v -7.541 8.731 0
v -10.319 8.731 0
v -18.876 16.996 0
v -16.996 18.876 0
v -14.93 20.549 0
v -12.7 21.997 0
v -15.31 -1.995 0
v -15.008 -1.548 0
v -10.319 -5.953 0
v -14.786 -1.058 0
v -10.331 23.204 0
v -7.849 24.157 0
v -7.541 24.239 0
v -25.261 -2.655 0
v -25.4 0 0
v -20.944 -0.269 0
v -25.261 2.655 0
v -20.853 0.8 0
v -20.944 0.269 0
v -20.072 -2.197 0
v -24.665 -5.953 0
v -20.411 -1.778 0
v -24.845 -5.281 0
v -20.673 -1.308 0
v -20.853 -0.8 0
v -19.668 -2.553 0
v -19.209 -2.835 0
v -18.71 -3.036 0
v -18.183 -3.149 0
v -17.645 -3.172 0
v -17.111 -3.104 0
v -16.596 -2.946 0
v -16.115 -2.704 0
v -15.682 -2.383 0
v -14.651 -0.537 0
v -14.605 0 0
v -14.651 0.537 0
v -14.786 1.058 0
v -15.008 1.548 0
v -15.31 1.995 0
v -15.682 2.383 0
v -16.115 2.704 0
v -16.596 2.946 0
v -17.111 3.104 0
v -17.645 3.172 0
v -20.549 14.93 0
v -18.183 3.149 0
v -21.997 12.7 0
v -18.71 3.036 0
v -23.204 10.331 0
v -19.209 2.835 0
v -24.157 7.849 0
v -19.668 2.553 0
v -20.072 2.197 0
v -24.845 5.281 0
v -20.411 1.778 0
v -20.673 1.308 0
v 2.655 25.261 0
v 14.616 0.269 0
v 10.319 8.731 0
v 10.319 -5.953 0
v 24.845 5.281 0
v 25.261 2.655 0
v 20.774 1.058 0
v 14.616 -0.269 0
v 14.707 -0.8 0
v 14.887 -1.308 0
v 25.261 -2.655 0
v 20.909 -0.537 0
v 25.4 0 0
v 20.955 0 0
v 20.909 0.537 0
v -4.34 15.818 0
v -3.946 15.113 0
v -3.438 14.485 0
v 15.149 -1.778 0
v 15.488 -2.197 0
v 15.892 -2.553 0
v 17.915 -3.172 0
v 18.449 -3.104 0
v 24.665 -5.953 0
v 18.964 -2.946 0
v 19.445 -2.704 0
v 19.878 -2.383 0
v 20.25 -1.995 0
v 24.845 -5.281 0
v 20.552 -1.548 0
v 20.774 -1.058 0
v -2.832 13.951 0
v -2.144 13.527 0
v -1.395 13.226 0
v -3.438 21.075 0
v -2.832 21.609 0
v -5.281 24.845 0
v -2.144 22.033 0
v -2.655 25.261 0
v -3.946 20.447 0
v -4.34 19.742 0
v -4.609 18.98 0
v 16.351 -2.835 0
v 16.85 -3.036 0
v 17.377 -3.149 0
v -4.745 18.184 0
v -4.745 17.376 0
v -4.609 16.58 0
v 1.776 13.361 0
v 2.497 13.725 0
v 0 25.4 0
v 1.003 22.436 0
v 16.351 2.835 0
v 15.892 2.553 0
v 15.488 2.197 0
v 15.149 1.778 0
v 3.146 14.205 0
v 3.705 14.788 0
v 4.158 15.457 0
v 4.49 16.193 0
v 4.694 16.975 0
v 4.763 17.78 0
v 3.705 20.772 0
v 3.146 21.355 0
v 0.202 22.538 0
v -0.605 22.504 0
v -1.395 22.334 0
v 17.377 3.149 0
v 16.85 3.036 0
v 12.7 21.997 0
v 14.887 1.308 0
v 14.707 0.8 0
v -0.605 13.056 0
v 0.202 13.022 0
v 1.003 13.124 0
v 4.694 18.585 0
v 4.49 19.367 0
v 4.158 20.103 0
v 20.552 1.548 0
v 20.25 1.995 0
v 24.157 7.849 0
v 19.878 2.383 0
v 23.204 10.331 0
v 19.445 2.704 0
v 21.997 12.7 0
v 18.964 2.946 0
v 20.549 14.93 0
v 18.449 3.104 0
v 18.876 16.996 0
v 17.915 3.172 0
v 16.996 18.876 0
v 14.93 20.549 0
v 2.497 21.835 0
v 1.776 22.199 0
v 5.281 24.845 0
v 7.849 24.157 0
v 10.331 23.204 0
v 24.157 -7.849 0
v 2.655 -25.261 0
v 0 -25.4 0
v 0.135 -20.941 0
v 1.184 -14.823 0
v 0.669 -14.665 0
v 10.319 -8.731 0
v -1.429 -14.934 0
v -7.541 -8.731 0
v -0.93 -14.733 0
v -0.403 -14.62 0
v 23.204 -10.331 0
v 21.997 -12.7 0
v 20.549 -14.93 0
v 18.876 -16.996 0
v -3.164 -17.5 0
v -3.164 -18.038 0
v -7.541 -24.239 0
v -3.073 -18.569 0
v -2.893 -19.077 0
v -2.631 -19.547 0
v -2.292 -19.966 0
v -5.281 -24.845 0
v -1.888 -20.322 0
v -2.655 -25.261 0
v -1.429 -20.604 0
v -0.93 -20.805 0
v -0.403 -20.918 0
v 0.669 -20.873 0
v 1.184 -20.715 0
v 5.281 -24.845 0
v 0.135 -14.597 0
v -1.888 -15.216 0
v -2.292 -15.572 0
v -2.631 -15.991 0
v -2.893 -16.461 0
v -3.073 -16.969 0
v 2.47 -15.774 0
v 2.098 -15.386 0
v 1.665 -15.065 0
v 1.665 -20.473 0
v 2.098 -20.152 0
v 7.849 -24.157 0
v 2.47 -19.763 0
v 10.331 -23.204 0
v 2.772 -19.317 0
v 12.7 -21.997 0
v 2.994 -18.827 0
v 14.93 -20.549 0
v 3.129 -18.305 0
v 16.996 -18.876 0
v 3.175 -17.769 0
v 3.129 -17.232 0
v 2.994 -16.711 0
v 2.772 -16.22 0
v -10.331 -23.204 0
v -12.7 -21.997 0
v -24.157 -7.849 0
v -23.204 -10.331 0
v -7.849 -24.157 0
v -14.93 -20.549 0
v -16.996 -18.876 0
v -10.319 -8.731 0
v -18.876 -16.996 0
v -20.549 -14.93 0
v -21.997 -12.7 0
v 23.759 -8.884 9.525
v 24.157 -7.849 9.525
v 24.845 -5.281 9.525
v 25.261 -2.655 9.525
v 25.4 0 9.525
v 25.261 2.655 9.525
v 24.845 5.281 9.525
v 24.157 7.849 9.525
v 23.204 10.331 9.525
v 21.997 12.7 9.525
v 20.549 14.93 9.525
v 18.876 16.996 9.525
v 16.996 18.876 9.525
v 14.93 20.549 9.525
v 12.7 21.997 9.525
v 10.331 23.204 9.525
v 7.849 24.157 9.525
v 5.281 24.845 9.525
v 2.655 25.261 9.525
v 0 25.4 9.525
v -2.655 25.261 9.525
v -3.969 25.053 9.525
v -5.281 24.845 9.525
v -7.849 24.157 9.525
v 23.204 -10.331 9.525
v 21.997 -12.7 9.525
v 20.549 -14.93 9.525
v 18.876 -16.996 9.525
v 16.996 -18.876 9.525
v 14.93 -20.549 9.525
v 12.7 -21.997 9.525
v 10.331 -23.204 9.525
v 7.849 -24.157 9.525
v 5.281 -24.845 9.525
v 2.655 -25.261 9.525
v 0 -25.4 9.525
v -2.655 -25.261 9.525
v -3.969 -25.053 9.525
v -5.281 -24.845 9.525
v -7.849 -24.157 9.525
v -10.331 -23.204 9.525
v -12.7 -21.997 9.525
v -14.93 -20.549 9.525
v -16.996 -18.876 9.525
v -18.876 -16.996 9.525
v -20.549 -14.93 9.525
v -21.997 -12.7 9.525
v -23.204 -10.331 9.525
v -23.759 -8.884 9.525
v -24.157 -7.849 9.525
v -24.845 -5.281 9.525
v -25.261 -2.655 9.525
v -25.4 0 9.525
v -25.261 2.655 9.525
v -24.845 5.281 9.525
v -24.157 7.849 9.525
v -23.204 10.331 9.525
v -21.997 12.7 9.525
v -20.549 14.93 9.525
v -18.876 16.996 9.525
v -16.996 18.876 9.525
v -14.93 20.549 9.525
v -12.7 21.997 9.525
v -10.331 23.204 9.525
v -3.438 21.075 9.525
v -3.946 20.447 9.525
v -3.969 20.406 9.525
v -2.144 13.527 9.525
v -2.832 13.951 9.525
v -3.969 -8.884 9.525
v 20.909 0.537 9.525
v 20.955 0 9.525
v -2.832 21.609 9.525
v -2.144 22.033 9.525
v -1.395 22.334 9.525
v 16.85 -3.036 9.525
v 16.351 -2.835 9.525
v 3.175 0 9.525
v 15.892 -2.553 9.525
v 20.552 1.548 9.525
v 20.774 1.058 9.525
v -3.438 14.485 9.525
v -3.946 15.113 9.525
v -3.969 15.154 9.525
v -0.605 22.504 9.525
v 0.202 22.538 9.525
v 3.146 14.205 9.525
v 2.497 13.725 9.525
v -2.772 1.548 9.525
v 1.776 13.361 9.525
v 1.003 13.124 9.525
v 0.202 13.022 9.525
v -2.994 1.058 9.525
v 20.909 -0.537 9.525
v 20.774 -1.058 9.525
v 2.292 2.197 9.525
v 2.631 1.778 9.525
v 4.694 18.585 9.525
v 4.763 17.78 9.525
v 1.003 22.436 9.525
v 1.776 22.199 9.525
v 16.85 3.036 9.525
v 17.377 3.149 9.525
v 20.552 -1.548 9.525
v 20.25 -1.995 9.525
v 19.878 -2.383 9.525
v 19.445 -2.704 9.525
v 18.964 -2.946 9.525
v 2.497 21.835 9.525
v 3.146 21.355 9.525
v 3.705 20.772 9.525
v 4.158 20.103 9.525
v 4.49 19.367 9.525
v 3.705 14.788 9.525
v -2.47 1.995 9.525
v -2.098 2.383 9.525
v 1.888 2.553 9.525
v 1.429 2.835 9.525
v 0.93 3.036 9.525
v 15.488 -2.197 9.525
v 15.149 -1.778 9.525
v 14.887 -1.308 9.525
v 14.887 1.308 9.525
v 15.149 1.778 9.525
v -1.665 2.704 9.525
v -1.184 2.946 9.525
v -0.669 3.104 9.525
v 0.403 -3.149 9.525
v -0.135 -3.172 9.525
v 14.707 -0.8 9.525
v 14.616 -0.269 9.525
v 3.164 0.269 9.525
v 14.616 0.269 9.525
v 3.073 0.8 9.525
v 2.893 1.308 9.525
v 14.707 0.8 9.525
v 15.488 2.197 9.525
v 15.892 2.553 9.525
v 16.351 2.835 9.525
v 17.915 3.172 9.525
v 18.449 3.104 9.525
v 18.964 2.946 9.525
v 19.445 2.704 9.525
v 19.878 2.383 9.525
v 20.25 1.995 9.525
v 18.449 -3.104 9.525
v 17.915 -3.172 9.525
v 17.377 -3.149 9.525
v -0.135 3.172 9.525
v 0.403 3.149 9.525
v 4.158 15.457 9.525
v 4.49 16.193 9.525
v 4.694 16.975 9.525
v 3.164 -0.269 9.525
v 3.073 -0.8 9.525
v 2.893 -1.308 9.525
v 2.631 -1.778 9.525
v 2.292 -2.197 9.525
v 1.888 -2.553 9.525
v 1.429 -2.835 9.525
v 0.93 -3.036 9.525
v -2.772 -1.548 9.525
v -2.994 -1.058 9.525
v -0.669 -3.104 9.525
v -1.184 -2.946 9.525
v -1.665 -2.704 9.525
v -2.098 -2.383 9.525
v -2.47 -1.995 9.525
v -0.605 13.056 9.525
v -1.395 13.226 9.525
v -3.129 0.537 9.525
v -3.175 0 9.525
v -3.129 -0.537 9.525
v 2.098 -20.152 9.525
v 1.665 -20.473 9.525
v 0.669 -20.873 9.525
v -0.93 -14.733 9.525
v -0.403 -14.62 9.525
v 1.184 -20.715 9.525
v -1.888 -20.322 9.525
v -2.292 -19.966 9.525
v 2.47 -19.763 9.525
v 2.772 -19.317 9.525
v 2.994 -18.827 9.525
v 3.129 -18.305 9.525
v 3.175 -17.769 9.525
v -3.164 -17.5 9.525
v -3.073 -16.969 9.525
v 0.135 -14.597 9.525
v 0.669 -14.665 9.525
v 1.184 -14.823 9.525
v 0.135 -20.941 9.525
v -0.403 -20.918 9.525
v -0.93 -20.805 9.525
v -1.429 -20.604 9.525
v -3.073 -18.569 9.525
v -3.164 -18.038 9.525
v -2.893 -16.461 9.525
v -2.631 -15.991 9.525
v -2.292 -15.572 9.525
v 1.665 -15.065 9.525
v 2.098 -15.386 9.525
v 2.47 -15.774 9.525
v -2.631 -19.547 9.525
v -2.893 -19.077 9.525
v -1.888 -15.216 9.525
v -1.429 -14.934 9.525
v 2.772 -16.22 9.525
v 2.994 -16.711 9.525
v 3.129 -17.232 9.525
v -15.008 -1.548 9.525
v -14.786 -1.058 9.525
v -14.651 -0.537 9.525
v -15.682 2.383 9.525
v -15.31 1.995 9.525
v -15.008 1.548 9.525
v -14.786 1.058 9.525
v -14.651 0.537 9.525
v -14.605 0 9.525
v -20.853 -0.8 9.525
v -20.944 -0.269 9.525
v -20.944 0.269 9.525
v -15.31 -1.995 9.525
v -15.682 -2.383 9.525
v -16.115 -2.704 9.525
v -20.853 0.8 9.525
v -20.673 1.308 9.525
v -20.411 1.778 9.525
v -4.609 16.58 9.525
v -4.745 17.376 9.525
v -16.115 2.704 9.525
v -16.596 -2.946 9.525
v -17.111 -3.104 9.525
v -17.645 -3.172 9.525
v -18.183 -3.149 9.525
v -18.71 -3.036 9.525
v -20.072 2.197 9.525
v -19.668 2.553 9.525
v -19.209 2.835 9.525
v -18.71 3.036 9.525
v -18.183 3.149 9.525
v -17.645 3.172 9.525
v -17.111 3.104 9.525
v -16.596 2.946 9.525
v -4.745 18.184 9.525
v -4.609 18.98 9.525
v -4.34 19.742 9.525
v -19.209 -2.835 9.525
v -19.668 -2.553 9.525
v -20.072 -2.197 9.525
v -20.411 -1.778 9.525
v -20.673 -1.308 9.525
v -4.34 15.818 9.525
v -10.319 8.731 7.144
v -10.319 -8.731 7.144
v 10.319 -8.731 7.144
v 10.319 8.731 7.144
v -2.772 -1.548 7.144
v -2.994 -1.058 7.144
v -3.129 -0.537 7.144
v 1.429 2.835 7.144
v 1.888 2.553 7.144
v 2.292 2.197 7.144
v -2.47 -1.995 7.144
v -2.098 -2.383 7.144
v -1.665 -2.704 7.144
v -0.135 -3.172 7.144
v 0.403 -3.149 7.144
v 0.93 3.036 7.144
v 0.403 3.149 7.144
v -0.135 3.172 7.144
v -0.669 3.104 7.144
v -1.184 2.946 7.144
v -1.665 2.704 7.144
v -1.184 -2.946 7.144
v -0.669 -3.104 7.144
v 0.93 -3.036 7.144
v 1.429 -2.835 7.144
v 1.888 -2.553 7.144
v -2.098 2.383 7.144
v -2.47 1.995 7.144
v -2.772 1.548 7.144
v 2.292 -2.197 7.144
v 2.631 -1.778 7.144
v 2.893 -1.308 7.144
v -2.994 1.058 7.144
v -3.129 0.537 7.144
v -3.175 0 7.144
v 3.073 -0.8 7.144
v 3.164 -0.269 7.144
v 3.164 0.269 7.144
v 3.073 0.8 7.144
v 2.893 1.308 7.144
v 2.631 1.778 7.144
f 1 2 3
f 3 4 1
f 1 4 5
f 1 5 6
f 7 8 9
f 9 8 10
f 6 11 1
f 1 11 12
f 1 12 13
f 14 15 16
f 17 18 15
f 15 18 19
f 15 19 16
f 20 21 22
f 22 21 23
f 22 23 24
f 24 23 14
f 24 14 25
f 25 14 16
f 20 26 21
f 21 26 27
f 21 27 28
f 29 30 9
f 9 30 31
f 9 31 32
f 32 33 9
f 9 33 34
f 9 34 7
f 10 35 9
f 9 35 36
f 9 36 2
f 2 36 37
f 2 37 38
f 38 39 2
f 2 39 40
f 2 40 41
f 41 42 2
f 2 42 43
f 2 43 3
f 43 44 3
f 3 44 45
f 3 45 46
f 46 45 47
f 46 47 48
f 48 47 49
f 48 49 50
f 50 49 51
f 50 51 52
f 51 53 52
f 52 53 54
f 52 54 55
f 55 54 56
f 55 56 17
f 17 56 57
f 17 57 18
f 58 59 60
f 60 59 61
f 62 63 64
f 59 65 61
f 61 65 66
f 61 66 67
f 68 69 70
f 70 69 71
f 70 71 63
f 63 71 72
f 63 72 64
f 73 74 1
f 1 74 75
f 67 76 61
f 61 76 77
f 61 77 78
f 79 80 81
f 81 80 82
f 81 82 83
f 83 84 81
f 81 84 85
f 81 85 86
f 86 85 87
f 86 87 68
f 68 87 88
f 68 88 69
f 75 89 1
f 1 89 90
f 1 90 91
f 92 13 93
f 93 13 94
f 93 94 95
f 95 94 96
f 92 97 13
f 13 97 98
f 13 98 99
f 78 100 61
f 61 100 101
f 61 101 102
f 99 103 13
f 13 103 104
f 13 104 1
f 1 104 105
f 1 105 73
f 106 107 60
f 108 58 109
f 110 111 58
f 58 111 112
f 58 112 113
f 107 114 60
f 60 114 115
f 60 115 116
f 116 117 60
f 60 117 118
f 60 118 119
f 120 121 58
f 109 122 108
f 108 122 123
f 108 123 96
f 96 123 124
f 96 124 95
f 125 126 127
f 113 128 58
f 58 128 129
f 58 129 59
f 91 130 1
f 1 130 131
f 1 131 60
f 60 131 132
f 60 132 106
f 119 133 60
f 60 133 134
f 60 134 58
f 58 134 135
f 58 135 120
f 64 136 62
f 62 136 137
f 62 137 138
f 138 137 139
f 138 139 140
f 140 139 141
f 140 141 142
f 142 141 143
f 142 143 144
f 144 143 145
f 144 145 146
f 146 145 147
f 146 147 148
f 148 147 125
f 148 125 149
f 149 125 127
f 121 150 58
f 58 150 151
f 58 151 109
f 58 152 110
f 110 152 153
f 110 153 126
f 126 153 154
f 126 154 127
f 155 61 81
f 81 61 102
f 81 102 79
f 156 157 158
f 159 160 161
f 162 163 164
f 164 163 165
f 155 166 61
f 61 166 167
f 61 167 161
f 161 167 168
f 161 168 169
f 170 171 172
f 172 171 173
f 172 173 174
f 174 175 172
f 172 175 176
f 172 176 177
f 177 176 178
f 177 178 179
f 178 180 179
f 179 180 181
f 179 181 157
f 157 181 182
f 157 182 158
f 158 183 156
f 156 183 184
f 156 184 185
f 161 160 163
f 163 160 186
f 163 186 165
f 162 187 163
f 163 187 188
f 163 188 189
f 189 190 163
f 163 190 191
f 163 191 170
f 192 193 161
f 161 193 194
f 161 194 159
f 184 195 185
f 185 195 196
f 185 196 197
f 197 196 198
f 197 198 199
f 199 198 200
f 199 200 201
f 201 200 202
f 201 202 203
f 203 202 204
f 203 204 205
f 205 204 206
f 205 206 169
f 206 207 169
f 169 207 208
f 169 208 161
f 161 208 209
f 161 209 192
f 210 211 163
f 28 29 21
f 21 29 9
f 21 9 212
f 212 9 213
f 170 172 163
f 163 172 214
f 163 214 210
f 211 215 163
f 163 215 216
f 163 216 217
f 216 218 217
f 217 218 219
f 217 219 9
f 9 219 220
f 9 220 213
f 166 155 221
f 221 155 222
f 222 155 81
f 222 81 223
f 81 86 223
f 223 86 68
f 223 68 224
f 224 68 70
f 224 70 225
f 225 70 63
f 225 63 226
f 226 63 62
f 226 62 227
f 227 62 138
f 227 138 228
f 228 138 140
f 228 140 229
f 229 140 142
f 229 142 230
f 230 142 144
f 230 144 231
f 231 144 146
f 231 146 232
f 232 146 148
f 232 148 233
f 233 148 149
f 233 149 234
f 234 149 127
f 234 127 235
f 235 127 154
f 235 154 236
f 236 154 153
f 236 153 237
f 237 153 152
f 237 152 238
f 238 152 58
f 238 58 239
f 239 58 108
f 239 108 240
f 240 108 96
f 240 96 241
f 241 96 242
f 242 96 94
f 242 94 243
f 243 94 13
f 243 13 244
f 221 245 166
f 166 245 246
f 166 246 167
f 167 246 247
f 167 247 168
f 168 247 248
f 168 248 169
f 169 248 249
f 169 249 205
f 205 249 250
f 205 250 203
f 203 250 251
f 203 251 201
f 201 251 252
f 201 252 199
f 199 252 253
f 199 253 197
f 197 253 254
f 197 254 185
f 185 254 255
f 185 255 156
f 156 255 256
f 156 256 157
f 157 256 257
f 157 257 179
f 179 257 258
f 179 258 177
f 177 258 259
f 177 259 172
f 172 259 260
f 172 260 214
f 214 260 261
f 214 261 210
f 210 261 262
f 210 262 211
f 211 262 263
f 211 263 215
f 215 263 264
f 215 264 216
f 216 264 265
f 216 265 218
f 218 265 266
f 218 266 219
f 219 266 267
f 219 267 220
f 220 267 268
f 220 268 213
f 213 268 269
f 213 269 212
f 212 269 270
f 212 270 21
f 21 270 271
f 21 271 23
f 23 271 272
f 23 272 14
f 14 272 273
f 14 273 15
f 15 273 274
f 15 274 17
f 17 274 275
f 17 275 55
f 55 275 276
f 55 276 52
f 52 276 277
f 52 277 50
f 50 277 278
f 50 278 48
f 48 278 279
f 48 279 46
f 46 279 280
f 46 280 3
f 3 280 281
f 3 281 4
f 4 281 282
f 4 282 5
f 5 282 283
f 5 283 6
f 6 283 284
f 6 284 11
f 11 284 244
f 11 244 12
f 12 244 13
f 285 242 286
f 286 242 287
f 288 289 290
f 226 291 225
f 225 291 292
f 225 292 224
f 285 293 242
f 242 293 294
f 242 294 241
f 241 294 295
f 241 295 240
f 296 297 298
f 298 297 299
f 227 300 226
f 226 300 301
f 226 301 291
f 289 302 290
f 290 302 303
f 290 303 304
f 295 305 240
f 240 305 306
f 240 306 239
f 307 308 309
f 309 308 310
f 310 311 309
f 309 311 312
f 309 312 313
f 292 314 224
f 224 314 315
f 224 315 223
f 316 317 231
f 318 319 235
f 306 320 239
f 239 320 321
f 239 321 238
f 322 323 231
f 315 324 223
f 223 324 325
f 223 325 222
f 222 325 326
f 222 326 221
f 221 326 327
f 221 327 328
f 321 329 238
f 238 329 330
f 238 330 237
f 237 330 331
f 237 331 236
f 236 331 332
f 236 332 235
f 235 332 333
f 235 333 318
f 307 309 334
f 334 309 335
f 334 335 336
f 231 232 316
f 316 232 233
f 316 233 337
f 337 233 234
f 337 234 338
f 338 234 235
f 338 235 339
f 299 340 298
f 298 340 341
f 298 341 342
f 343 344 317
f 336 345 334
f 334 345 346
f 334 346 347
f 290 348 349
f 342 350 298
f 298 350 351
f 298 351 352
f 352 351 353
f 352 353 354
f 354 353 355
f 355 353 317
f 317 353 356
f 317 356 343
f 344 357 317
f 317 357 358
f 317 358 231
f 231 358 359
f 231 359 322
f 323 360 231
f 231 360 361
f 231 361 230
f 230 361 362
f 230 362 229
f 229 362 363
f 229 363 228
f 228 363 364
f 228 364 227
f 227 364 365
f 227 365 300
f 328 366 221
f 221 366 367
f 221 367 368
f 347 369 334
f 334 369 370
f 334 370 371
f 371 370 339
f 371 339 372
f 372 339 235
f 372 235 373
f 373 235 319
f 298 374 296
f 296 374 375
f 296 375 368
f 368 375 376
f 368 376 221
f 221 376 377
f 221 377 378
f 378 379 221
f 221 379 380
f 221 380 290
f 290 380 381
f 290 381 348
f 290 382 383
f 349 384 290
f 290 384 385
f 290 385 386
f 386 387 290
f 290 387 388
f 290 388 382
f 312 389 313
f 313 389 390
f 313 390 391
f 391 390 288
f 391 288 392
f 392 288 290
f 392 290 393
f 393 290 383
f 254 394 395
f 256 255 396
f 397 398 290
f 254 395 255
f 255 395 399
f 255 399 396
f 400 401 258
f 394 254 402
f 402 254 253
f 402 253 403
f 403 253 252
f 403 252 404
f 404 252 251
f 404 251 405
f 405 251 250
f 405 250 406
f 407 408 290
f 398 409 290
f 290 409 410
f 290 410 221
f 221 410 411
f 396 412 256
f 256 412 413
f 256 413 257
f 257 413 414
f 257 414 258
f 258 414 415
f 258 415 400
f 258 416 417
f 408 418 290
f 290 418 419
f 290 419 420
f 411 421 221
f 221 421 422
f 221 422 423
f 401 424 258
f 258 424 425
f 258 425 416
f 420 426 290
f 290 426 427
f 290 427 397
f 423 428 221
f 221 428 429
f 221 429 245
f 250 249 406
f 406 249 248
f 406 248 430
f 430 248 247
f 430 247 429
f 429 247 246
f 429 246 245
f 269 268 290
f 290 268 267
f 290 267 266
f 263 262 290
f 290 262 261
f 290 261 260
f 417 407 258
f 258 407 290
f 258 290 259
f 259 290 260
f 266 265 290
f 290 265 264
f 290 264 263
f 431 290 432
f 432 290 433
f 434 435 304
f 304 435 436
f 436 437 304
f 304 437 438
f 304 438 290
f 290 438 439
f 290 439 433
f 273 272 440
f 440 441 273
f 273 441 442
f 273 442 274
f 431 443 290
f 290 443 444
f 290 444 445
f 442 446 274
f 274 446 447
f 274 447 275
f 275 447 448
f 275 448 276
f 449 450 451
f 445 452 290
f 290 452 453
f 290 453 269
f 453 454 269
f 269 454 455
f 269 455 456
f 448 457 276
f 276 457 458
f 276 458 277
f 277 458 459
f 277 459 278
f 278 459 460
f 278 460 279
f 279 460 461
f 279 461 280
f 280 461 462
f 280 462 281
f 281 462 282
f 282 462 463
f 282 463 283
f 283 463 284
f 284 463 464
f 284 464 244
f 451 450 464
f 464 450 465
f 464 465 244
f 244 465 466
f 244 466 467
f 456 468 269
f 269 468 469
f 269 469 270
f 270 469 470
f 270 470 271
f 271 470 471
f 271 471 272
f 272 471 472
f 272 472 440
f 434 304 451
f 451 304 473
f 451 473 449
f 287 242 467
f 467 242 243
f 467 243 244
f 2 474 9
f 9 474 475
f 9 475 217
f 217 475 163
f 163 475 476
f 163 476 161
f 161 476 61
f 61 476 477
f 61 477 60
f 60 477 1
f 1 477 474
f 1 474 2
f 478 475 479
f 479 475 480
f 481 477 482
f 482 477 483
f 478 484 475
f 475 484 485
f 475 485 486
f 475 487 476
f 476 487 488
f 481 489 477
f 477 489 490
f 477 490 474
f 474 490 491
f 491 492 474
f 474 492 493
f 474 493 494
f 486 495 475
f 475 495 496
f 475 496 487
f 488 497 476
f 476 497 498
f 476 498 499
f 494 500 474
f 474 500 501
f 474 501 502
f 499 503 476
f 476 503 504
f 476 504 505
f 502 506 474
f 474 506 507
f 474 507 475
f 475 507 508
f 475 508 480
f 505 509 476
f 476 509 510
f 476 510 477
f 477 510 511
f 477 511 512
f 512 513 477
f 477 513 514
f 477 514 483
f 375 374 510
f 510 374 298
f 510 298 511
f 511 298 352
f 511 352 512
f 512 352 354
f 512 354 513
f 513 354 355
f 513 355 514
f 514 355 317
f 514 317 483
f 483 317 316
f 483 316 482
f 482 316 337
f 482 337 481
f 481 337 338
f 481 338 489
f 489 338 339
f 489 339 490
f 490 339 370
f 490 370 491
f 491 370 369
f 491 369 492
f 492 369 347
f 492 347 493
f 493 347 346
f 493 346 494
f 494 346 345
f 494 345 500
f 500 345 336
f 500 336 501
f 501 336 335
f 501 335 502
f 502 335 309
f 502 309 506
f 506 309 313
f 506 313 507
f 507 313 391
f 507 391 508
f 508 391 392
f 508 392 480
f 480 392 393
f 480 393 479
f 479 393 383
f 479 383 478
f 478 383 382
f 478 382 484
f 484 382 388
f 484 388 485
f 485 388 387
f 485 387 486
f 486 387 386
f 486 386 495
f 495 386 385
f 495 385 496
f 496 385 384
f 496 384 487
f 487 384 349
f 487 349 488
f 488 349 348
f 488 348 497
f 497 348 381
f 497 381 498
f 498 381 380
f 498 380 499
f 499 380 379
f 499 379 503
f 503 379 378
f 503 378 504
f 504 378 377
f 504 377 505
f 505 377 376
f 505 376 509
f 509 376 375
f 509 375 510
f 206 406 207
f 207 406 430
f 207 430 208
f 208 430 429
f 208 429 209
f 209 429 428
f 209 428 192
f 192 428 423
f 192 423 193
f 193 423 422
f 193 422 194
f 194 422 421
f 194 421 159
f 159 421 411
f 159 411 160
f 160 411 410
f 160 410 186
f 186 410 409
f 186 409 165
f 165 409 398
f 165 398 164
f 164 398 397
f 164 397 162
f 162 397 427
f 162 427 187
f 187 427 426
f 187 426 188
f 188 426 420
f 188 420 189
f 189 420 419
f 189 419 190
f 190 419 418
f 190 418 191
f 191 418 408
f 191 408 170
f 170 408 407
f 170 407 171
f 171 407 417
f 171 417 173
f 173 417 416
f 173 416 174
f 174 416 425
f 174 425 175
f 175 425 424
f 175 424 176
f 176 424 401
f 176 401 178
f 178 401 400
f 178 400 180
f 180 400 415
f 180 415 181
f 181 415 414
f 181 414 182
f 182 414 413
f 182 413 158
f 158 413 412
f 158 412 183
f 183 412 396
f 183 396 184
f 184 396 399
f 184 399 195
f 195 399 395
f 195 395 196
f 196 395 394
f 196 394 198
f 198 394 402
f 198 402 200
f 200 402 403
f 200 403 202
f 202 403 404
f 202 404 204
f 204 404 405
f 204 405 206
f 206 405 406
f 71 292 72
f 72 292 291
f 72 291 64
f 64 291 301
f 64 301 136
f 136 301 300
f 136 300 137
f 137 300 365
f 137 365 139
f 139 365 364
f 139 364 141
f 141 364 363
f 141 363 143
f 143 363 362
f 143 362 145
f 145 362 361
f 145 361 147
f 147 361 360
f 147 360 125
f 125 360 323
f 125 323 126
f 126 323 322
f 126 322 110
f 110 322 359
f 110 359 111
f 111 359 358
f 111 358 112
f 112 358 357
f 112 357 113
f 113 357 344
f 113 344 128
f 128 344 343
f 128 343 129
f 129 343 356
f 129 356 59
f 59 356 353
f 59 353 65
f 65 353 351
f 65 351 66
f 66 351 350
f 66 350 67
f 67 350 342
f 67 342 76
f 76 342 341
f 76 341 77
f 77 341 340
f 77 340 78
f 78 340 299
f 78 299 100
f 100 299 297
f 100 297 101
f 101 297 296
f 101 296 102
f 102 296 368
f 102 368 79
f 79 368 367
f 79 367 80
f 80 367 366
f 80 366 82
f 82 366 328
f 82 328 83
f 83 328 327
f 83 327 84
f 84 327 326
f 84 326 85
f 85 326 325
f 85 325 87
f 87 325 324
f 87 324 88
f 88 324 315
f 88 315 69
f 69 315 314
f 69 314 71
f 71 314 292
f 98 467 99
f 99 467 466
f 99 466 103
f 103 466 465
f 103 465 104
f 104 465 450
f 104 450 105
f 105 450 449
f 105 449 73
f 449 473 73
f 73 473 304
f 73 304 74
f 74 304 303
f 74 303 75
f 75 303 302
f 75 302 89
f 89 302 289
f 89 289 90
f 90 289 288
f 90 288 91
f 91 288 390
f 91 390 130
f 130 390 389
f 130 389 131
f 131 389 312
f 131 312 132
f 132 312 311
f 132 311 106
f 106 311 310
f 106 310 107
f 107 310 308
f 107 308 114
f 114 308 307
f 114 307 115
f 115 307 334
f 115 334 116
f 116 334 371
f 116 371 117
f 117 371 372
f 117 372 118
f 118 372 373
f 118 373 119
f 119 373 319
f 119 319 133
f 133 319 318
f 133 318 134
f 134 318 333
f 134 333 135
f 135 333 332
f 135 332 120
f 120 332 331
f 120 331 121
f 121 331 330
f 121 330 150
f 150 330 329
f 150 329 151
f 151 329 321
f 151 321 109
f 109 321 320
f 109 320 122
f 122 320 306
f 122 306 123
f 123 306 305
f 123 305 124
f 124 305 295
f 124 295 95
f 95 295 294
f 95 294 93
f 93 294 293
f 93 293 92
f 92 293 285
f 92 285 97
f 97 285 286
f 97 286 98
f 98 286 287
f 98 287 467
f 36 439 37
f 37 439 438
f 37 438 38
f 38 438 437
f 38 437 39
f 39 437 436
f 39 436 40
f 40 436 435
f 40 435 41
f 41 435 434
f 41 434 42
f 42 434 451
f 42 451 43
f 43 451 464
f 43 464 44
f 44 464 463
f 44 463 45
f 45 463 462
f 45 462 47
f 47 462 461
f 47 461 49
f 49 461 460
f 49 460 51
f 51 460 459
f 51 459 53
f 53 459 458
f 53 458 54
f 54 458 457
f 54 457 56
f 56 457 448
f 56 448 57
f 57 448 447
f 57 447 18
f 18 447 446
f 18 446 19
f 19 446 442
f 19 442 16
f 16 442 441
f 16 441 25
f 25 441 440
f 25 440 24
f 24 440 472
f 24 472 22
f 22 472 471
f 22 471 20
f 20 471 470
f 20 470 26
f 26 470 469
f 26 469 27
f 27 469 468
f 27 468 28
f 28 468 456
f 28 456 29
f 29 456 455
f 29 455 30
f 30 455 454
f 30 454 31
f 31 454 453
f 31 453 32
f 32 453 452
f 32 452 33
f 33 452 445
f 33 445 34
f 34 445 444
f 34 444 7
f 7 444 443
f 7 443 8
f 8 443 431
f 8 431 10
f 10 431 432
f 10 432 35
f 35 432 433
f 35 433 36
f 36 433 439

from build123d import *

# Parameters (mm, degrees)
SKETCH1_R           = 25.4
BOSS_EXTRUDE1_DEPTH = 9.525
SKETCH2_W           = 20.6375
SKETCH2_H           = 17.4625
CUT_EXTRUDE1_DEPTH  = 7.14375
SKETCH3_R           = 3.175
CUT_EXTRUDE9_DEPTH  = 15.5575
SKETCH5_R           = 4.7625
SKETCH5_R_2         = 3.175
CUT_EXTRUDE10_DEPTH = 15.5575


with BuildPart() as part:
    # Sketch1 → Boss-Extrude1 (new body)
    with BuildSketch(Plane.XY):
        with Locations(Location((0, 0, 0), (0, 0, 180))):
            Circle(SKETCH1_R)
    extrude(amount=BOSS_EXTRUDE1_DEPTH)

    # Sketch2 → Cut-Extrude1 (cut)
    with BuildSketch(Plane.XY):
        Rectangle(SKETCH2_W, SKETCH2_H)
    extrude(amount=CUT_EXTRUDE1_DEPTH, mode=Mode.SUBTRACT)

    # Sketch3 → Cut-Extrude9 (cut)
    with BuildSketch(Plane(origin=(0, 0, 7.14375), x_dir=(-1, 0, 0), z_dir=(0, 0, -1))):
        Circle(SKETCH3_R)
    extrude(amount=-CUT_EXTRUDE9_DEPTH, mode=Mode.SUBTRACT)

    # Sketch5 → Cut-Extrude10 (cut)
    with BuildSketch(Plane.XY.offset(9.525)):
        with Locations((0, 17.78)):
            Circle(SKETCH5_R)
        with Locations((17.78, 0)):
            Circle(SKETCH5_R_2)
        with Locations((0, -17.768897269)):
            Circle(SKETCH5_R_2)
        with Locations((-17.78, 0)):
            Circle(SKETCH5_R_2)
    extrude(amount=-CUT_EXTRUDE10_DEPTH, mode=Mode.SUBTRACT)


solid = part.part
